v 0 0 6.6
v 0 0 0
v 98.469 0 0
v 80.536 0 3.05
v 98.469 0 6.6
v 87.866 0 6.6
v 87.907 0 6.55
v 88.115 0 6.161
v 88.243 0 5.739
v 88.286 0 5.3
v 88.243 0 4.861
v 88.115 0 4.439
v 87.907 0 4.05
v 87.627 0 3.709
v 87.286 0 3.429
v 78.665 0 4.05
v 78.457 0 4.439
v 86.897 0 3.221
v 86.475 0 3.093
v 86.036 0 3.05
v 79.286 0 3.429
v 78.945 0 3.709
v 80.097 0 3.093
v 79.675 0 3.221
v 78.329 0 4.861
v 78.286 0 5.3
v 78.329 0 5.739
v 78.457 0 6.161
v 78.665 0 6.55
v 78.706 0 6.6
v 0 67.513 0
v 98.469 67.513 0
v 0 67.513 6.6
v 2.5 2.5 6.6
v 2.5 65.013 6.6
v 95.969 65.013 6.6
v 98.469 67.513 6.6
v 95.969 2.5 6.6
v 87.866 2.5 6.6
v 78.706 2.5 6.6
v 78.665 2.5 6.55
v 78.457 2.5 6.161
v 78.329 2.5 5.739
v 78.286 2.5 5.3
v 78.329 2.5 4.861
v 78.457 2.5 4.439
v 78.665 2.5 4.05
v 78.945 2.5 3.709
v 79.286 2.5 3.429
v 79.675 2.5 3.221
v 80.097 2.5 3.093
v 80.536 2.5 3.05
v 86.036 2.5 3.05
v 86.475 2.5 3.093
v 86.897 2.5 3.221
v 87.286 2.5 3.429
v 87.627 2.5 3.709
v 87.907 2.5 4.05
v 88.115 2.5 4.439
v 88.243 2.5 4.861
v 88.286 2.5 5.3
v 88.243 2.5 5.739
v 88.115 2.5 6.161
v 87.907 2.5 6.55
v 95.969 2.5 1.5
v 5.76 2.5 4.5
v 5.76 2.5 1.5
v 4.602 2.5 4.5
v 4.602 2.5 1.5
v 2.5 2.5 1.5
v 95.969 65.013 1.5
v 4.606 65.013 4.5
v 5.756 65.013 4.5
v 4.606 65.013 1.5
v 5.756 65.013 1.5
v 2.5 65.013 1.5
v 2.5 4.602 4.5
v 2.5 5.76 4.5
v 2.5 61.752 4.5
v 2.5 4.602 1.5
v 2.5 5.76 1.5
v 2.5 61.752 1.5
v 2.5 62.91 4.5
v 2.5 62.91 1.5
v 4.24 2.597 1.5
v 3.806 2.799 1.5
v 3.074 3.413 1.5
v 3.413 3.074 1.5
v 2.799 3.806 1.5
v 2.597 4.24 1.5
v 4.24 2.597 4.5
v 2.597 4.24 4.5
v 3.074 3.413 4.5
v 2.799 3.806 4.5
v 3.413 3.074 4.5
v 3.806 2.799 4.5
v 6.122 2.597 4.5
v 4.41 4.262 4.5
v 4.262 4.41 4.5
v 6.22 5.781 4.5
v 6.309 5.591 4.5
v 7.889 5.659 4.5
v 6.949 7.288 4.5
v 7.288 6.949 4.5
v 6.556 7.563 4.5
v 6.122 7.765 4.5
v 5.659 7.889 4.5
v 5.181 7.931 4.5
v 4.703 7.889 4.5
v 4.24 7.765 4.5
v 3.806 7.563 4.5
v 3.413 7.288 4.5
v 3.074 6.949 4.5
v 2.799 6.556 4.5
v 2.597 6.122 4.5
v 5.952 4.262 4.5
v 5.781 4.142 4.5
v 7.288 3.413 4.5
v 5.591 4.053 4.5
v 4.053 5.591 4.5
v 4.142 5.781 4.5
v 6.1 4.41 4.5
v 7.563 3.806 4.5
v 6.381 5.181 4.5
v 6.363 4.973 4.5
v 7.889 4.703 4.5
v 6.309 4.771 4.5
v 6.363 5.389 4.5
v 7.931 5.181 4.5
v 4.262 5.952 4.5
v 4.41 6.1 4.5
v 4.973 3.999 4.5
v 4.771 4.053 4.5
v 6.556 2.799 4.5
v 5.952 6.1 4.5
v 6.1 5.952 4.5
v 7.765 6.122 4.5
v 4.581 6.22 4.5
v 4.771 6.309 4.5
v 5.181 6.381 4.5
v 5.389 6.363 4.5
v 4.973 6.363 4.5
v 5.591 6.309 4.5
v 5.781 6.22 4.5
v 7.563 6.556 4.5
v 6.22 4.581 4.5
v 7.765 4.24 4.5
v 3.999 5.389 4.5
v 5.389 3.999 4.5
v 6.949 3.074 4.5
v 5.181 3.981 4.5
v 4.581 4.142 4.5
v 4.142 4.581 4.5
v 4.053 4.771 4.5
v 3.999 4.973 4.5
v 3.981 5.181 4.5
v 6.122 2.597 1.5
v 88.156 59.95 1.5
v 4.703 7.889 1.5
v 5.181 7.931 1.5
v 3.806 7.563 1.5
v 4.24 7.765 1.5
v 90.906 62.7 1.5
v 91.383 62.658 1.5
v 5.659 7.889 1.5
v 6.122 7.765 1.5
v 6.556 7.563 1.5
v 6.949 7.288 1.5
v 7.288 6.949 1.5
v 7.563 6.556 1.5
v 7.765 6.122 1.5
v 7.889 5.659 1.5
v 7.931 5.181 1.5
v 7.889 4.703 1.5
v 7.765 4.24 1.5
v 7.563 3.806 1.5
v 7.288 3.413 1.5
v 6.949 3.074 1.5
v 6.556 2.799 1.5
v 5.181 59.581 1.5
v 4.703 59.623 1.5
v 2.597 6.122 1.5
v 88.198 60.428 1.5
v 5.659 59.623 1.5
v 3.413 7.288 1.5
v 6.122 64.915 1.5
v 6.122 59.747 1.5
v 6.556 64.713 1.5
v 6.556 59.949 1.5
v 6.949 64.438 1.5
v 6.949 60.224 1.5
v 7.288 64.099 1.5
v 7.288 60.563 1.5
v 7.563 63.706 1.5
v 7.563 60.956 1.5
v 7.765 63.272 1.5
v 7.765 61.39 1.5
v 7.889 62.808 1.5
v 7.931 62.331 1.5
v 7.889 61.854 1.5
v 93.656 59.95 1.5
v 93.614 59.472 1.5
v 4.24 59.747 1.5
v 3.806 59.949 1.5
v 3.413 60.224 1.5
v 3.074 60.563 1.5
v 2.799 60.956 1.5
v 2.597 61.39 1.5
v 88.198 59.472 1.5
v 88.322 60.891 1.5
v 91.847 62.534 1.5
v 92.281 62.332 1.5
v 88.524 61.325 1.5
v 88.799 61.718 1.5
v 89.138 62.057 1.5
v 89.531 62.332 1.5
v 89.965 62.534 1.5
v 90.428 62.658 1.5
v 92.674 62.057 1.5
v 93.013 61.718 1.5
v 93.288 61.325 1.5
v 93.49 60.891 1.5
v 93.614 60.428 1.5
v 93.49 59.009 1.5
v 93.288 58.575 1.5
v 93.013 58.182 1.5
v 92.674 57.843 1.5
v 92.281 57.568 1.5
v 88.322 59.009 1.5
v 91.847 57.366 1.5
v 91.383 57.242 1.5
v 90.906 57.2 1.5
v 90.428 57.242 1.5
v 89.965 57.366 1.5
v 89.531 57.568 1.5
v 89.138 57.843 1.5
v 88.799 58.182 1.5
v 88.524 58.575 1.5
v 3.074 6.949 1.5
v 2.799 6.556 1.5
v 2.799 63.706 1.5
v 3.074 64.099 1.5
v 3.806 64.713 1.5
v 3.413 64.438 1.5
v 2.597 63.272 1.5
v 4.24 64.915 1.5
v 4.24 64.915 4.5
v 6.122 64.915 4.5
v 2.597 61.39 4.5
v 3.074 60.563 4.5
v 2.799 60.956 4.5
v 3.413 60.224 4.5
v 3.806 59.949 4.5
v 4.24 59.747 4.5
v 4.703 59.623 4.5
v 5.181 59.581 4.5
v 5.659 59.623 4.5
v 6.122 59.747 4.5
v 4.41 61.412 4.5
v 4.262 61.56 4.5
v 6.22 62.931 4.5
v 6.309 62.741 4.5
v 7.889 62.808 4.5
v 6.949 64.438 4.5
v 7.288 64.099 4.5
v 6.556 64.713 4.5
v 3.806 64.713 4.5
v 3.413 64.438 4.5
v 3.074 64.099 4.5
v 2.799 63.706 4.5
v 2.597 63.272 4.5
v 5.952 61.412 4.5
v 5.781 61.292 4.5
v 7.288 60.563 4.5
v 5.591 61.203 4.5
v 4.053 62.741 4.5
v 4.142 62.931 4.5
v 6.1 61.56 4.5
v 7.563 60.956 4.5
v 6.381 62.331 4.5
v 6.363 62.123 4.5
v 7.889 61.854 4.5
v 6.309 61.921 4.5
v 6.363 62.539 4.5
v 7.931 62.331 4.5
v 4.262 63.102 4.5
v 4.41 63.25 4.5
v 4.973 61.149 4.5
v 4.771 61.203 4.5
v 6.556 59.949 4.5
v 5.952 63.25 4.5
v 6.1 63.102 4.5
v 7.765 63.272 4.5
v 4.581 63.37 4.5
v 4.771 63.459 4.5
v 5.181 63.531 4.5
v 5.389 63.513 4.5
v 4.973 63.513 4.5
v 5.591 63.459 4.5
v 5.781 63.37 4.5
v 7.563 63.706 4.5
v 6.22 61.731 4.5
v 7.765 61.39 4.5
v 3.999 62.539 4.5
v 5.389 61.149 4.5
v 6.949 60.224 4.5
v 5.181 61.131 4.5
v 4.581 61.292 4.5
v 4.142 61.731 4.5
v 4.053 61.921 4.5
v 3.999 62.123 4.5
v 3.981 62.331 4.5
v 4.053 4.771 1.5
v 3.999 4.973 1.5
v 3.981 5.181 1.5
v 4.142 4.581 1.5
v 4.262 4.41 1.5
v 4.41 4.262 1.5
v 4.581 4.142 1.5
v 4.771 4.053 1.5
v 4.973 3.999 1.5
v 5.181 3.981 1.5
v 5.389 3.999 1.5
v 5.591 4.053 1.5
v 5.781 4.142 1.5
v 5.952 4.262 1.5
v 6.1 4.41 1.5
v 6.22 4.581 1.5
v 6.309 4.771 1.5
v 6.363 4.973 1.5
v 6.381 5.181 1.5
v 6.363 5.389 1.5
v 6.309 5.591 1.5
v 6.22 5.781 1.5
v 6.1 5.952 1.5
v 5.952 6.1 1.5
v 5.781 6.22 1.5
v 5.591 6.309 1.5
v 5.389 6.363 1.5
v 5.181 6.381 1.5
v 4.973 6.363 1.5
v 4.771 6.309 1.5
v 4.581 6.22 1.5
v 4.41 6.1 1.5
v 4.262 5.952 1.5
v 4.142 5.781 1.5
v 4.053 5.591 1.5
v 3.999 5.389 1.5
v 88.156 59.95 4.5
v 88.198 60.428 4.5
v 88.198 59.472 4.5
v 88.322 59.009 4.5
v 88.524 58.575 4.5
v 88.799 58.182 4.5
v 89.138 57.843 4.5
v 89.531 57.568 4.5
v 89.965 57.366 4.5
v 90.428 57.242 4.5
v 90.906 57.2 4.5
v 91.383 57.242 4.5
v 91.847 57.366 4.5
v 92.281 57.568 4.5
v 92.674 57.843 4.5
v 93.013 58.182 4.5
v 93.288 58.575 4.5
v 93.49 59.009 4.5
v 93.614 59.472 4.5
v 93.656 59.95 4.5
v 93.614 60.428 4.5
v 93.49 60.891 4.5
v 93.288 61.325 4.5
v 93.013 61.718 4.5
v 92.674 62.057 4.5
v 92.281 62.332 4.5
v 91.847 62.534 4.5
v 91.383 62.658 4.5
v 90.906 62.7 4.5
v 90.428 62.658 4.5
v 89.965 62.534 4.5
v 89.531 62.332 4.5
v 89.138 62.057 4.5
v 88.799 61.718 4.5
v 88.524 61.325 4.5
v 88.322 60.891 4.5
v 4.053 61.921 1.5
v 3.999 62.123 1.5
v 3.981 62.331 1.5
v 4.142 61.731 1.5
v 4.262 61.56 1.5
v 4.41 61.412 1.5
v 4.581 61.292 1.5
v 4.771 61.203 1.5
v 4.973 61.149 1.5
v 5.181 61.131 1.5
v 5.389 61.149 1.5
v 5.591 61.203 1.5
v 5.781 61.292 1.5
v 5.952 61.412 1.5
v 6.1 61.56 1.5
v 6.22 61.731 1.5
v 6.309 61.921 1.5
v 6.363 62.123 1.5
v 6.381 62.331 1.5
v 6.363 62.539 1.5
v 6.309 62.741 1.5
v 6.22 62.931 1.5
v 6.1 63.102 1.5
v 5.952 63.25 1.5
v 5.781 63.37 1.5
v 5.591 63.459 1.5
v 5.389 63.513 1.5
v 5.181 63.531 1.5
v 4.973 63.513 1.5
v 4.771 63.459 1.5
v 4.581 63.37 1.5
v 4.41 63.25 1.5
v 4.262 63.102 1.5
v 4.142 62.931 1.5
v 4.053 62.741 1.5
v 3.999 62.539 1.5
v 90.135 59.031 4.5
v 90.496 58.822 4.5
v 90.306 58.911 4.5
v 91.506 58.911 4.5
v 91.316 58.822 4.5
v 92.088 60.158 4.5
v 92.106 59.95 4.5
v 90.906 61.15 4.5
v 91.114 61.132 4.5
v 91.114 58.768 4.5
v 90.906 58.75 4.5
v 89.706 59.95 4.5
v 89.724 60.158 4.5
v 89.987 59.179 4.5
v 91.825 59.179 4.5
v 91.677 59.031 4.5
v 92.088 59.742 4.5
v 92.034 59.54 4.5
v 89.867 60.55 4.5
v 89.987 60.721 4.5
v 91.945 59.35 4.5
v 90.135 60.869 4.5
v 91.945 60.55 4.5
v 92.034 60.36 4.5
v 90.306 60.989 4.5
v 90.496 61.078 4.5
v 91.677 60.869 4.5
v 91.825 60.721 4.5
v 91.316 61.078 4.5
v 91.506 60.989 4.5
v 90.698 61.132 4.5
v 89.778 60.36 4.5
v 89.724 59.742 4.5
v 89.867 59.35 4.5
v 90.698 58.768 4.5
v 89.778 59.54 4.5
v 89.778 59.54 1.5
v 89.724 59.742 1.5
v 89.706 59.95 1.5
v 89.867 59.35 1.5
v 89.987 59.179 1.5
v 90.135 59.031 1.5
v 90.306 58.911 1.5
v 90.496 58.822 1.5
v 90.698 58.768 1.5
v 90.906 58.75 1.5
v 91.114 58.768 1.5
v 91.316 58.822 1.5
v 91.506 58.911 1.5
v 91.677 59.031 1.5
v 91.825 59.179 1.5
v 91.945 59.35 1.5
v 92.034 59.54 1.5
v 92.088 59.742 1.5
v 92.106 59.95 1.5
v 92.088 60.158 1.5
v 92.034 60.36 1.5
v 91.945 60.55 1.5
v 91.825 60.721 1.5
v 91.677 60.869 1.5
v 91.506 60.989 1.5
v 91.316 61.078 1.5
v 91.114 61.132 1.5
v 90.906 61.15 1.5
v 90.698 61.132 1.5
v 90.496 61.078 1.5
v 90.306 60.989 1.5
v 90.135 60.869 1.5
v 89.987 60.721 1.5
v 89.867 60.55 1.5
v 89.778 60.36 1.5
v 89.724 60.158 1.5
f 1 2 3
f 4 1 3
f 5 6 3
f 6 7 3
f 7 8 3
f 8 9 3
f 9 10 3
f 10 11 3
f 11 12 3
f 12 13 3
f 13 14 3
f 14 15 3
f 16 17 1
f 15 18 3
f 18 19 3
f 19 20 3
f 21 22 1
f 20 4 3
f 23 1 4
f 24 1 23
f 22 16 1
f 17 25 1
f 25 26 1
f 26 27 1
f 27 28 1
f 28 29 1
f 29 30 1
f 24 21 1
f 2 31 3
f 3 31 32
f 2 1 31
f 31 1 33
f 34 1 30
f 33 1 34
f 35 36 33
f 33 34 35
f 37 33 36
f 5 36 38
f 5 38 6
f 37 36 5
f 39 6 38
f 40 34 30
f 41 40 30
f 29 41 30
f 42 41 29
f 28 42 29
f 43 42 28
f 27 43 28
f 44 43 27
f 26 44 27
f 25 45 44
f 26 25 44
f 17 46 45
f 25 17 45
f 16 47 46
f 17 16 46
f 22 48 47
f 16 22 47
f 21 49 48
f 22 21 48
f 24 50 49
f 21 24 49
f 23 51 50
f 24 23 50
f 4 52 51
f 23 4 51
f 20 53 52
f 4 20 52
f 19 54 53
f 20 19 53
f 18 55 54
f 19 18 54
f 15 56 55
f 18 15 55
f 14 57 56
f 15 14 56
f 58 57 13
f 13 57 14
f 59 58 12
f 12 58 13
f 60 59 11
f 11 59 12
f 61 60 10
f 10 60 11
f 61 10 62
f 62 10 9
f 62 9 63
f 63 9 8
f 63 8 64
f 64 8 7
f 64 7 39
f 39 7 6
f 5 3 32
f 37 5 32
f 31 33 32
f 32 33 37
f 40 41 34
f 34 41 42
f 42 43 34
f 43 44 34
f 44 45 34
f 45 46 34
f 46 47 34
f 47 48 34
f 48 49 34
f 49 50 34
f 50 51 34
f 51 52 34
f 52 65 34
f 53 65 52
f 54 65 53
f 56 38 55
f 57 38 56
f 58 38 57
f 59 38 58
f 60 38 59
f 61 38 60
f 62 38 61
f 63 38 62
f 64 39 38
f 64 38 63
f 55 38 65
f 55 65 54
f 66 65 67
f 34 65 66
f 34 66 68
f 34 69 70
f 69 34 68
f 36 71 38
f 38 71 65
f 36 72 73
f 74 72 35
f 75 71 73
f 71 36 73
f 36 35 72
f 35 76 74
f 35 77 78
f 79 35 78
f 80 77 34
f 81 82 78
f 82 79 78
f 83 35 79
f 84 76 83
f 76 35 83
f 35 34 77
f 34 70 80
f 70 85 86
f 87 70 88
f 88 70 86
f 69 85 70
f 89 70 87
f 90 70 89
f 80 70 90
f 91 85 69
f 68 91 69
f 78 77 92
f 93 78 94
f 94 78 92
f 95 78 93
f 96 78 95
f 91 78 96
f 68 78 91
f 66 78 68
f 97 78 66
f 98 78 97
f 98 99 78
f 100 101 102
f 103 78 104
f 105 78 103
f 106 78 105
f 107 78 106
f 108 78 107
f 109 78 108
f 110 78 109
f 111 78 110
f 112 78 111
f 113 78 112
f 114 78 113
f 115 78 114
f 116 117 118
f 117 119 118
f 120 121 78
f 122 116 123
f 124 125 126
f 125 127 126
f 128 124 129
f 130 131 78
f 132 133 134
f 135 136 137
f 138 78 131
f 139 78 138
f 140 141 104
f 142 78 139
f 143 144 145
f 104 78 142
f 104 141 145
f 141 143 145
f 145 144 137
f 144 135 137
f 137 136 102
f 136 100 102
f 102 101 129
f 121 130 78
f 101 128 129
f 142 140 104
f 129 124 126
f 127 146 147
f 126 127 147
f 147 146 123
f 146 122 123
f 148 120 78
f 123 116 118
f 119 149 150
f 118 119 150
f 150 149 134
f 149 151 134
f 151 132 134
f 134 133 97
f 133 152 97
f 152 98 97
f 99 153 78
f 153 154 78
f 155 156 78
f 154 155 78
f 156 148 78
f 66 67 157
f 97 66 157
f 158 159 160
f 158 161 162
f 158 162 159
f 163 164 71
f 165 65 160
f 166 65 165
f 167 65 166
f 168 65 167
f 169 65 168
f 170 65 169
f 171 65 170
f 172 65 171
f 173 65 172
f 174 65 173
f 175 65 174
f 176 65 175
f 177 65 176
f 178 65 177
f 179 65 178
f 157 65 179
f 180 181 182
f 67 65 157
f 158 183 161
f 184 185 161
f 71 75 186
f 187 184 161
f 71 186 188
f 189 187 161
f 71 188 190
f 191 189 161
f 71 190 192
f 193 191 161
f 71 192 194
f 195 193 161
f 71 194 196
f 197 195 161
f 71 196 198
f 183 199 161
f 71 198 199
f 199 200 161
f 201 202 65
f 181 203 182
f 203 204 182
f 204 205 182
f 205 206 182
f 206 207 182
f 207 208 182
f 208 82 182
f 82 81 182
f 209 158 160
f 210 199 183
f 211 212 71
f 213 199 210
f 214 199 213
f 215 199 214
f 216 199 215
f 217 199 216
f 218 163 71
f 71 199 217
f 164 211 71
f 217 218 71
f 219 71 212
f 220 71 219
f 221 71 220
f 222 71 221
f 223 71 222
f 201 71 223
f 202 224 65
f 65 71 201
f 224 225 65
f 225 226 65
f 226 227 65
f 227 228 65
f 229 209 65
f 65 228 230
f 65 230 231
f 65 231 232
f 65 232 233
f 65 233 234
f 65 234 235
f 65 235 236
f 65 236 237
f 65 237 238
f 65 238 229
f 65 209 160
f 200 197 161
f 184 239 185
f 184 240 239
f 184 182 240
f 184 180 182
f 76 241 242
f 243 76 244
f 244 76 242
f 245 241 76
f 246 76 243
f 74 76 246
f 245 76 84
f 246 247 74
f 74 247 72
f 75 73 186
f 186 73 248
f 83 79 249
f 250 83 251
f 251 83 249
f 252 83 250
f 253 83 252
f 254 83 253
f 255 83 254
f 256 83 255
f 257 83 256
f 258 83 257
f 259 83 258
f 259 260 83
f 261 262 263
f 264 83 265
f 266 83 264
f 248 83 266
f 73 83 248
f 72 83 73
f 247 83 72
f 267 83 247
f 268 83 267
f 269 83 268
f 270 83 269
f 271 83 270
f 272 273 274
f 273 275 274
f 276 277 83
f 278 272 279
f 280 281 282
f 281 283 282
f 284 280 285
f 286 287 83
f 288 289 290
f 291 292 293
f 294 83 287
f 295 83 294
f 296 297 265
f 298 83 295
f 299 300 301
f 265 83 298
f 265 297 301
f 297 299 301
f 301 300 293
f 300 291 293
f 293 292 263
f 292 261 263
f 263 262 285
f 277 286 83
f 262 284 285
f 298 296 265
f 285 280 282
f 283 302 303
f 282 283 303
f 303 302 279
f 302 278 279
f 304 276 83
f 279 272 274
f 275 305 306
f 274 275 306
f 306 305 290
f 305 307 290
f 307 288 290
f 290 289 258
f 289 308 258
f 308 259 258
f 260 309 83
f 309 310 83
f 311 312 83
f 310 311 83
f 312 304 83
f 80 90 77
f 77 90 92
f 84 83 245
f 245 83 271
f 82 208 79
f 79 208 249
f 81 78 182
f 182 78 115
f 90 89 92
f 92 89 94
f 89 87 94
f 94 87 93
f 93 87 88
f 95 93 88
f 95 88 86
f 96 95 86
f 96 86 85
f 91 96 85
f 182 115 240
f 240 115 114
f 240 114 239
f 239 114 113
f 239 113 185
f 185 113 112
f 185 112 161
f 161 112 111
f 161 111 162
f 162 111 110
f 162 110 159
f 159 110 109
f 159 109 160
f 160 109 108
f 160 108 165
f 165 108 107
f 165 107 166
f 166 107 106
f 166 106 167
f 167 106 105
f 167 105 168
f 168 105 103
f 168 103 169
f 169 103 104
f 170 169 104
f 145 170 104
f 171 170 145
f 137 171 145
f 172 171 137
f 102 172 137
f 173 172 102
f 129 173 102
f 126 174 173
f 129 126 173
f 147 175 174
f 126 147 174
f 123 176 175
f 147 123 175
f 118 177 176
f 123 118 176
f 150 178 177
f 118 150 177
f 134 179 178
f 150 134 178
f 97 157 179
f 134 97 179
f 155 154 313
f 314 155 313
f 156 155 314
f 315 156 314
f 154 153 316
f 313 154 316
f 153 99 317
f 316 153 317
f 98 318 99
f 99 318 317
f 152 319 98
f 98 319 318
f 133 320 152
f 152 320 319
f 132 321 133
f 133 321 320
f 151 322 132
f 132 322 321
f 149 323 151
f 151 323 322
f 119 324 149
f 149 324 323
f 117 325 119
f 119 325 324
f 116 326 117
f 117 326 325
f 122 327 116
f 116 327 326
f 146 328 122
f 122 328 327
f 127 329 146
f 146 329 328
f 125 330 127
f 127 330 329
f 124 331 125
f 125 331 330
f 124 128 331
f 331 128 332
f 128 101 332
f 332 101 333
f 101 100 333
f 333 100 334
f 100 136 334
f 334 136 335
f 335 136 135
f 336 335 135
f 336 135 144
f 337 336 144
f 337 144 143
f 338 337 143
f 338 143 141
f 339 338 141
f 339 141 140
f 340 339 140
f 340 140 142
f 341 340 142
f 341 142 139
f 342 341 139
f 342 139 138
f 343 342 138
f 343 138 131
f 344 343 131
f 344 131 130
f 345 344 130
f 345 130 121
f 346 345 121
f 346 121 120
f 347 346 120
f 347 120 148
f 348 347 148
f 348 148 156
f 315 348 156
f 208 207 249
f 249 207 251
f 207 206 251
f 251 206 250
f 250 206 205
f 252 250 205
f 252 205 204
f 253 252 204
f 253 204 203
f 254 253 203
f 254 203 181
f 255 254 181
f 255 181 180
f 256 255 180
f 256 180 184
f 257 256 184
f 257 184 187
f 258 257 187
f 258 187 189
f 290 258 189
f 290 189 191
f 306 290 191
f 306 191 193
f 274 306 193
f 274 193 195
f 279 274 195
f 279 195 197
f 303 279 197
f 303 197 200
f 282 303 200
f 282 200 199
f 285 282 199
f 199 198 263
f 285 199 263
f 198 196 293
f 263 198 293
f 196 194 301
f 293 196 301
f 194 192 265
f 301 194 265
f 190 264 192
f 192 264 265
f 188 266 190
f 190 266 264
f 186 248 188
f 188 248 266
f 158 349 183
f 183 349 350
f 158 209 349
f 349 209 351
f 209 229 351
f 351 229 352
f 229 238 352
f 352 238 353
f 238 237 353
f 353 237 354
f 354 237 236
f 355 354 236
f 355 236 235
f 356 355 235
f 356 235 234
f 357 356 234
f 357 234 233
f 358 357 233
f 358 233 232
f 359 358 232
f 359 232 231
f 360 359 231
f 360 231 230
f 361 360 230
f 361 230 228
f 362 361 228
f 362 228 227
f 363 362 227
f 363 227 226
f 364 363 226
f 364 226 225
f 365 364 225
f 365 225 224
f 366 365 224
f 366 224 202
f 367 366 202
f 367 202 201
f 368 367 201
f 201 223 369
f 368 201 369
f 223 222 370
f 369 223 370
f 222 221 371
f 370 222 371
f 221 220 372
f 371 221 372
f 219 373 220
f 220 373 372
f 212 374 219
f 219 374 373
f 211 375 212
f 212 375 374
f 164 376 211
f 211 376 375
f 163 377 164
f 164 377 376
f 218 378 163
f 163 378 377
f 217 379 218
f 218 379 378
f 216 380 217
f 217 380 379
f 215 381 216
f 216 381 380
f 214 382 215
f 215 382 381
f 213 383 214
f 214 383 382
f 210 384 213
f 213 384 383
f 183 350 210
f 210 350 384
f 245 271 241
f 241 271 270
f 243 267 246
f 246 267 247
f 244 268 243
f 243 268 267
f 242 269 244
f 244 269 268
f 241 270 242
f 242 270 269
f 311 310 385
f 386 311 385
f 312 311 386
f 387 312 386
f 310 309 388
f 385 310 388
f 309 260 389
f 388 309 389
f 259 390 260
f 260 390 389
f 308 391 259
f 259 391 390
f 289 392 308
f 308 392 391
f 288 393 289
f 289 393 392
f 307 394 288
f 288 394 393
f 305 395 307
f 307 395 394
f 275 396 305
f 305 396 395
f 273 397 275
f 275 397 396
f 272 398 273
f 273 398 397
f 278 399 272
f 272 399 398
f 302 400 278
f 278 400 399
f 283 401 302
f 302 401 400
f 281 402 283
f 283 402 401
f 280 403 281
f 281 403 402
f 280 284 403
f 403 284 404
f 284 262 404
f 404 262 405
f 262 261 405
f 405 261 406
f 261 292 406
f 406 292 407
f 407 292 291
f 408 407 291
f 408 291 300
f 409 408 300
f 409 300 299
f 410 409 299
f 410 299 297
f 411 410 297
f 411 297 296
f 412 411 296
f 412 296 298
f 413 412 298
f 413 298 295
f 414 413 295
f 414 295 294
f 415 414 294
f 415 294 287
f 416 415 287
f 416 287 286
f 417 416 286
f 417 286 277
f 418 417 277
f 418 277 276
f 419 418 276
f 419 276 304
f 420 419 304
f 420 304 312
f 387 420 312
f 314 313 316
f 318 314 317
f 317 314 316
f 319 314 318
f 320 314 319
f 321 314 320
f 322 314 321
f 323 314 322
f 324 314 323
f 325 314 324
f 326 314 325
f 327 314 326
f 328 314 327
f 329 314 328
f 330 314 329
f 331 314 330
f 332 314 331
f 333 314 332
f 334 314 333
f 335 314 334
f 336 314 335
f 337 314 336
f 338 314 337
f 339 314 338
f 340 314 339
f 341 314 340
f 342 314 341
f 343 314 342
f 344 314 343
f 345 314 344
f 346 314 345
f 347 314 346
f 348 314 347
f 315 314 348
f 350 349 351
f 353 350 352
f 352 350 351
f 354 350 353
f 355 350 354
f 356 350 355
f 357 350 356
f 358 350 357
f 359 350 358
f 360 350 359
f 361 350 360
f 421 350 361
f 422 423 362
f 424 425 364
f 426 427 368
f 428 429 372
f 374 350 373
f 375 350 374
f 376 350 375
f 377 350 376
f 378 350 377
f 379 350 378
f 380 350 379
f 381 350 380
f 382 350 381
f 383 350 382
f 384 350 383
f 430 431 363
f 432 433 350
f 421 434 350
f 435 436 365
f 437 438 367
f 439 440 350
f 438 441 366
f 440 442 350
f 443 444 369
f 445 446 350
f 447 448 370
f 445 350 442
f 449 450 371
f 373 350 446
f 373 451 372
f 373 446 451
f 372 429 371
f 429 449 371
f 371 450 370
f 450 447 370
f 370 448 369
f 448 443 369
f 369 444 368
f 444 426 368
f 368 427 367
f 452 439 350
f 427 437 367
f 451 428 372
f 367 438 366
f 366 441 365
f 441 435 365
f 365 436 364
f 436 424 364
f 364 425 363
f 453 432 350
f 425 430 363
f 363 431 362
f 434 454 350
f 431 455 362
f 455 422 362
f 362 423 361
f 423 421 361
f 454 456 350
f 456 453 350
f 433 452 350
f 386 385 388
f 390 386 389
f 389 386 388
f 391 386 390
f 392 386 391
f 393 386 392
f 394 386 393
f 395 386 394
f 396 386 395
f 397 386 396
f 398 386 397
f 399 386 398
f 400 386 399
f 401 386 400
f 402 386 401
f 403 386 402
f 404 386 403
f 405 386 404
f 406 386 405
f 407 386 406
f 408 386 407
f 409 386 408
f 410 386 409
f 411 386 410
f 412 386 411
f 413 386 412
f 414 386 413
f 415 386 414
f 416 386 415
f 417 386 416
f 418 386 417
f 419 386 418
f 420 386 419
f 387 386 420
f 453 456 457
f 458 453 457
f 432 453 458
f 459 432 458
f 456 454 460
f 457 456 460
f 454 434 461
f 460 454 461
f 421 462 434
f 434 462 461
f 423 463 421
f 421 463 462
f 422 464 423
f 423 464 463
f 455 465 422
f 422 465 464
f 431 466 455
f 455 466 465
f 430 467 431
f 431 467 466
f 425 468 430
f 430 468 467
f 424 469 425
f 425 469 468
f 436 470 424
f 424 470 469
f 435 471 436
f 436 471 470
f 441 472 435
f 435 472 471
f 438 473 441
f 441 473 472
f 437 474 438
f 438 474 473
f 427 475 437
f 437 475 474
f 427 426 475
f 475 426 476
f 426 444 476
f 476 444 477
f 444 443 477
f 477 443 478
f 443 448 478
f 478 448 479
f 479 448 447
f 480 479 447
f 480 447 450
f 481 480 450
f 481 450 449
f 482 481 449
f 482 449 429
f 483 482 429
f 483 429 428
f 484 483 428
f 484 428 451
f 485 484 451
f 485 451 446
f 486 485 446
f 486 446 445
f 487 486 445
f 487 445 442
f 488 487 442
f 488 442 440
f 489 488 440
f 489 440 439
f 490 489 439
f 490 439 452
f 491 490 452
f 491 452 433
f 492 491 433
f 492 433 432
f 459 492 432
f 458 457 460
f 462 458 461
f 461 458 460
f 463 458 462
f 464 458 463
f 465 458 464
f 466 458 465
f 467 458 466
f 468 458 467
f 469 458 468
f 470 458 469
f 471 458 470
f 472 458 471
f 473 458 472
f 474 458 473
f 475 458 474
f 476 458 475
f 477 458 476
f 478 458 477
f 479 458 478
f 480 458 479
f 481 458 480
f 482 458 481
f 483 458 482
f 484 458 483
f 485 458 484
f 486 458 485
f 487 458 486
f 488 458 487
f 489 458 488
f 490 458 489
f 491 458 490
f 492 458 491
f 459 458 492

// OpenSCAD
// ============================================================
//  Zuup Micropad - Open-Top Tray FINAL (from KiCad data)
//  PCB: 92.869 (X) x 61.913 (Y) mm
//
//  Coordinate system:
//    X = long axis (left to right)
//    Y = short axis (front to back)
//    Z = up
//
//  Mounting holes (M2, 2.2mm) — from KiCad:
//    1. Top-left:     rel(2.381,  2.381)   ← unnamed footprint, corner
//    2. Bottom-left:  rel(2.381,  59.531)  ← unnamed footprint, corner
//    3. Bottom-right: rel(88.106, 57.150)  ← MountingHole_2.2mm_M2
//
//  Arduino Pro Micro center: rel(80.486, 19.050)
//  USB-C port: on TOP wall (min-Y face = front wall)
//              X center = 80.486mm from left edge of PCB
//              Port is ~3.1mm from top board edge (Pro Micro sits near top)
// ============================================================

// PCB
pcb_l = 92.869;
pcb_w = 61.913;
pcb_t = 1.6;

// Tray settings
tolerance   = 0.3;
wall        = 2.5;
floor_t     = 1.5;
standoff_h  = 3.0;
standoff_od = 5.5;
m2_d        = 2.4;

// Derived
inner_l = pcb_l + 2 * tolerance;
inner_w = pcb_w + 2 * tolerance;
outer_l = inner_l + 2 * wall;
outer_w = inner_w + 2 * wall;
wall_h  = floor_t + standoff_h + pcb_t + 0.5;

// Mounting hole positions (relative to PCB origin, converted to tray coords)
// tray coord = wall + tolerance + pcb_relative_coord
mh1_x = wall + tolerance + 2.381;   // top-left X
mh1_y = wall + tolerance + 2.381;   // top-left Y (min Y = front)

mh2_x = wall + tolerance + 2.381;   // bottom-left X
mh2_y = wall + tolerance + 59.531;  // bottom-left Y

mh3_x = wall + tolerance + 88.106;  // bottom-right X
mh3_y = wall + tolerance + 57.150;  // bottom-right Y

// USB-C hole on FRONT wall (min-Y face, Y=0 side)
// Pro Micro center X = 80.486mm from left PCB edge
// USB-C connector: 9mm wide, 3.5mm tall — use pill shape with clearance
usb_x  = wall + tolerance + 80.486; // X center of hole in tray coords
usb_z  = floor_t + standoff_h + pcb_t / 2; // vertically at PCB level
usb_c_w = 10.0;  // hole width (X)
usb_c_h = 4.5;   // hole height (Z)

// ============================================================
module standoff(x, y) {
    translate([x, y, floor_t])
    difference() {
        cylinder(h=standoff_h, d=standoff_od, $fn=36);
        cylinder(h=standoff_h + 1, d=m2_d, $fn=36);
    }
}

module tray() {
    difference() {
        // Outer box
        cube([outer_l, outer_w, wall_h]);

        // Inner cavity (open top)
        translate([wall, wall, floor_t])
            cube([inner_l, inner_w, wall_h + 1]);

        // USB-C pill hole through FRONT wall (min-Y face, drill along Y)
        translate([usb_x, -0.01, usb_z])
        hull() {
            translate([-(usb_c_w/2 - usb_c_h/2), 0, 0])
                rotate([-90, 0, 0])
                    cylinder(h=wall + 0.02, r=usb_c_h/2, $fn=32);
            translate([ (usb_c_w/2 - usb_c_h/2), 0, 0])
                rotate([-90, 0, 0])
                    cylinder(h=wall + 0.02, r=usb_c_h/2, $fn=32);
        }
    }

    // 3x Standoffs at exact KiCad mounting hole positions
    standoff(mh1_x, mh1_y);  // top-left
    standoff(mh2_x, mh2_y);  // bottom-left
    standoff(mh3_x, mh3_y);  // bottom-right
}

tray();

// ============================================================
// TUNING
// usb_x   — move USB hole left/right
// usb_z   — move USB hole up/down
// wall_h  — total tray height
// standoff_h — PCB height above floor
// tolerance  — PCB fit (0.3 = standard, 0.1 = tight)
// ============================================================
